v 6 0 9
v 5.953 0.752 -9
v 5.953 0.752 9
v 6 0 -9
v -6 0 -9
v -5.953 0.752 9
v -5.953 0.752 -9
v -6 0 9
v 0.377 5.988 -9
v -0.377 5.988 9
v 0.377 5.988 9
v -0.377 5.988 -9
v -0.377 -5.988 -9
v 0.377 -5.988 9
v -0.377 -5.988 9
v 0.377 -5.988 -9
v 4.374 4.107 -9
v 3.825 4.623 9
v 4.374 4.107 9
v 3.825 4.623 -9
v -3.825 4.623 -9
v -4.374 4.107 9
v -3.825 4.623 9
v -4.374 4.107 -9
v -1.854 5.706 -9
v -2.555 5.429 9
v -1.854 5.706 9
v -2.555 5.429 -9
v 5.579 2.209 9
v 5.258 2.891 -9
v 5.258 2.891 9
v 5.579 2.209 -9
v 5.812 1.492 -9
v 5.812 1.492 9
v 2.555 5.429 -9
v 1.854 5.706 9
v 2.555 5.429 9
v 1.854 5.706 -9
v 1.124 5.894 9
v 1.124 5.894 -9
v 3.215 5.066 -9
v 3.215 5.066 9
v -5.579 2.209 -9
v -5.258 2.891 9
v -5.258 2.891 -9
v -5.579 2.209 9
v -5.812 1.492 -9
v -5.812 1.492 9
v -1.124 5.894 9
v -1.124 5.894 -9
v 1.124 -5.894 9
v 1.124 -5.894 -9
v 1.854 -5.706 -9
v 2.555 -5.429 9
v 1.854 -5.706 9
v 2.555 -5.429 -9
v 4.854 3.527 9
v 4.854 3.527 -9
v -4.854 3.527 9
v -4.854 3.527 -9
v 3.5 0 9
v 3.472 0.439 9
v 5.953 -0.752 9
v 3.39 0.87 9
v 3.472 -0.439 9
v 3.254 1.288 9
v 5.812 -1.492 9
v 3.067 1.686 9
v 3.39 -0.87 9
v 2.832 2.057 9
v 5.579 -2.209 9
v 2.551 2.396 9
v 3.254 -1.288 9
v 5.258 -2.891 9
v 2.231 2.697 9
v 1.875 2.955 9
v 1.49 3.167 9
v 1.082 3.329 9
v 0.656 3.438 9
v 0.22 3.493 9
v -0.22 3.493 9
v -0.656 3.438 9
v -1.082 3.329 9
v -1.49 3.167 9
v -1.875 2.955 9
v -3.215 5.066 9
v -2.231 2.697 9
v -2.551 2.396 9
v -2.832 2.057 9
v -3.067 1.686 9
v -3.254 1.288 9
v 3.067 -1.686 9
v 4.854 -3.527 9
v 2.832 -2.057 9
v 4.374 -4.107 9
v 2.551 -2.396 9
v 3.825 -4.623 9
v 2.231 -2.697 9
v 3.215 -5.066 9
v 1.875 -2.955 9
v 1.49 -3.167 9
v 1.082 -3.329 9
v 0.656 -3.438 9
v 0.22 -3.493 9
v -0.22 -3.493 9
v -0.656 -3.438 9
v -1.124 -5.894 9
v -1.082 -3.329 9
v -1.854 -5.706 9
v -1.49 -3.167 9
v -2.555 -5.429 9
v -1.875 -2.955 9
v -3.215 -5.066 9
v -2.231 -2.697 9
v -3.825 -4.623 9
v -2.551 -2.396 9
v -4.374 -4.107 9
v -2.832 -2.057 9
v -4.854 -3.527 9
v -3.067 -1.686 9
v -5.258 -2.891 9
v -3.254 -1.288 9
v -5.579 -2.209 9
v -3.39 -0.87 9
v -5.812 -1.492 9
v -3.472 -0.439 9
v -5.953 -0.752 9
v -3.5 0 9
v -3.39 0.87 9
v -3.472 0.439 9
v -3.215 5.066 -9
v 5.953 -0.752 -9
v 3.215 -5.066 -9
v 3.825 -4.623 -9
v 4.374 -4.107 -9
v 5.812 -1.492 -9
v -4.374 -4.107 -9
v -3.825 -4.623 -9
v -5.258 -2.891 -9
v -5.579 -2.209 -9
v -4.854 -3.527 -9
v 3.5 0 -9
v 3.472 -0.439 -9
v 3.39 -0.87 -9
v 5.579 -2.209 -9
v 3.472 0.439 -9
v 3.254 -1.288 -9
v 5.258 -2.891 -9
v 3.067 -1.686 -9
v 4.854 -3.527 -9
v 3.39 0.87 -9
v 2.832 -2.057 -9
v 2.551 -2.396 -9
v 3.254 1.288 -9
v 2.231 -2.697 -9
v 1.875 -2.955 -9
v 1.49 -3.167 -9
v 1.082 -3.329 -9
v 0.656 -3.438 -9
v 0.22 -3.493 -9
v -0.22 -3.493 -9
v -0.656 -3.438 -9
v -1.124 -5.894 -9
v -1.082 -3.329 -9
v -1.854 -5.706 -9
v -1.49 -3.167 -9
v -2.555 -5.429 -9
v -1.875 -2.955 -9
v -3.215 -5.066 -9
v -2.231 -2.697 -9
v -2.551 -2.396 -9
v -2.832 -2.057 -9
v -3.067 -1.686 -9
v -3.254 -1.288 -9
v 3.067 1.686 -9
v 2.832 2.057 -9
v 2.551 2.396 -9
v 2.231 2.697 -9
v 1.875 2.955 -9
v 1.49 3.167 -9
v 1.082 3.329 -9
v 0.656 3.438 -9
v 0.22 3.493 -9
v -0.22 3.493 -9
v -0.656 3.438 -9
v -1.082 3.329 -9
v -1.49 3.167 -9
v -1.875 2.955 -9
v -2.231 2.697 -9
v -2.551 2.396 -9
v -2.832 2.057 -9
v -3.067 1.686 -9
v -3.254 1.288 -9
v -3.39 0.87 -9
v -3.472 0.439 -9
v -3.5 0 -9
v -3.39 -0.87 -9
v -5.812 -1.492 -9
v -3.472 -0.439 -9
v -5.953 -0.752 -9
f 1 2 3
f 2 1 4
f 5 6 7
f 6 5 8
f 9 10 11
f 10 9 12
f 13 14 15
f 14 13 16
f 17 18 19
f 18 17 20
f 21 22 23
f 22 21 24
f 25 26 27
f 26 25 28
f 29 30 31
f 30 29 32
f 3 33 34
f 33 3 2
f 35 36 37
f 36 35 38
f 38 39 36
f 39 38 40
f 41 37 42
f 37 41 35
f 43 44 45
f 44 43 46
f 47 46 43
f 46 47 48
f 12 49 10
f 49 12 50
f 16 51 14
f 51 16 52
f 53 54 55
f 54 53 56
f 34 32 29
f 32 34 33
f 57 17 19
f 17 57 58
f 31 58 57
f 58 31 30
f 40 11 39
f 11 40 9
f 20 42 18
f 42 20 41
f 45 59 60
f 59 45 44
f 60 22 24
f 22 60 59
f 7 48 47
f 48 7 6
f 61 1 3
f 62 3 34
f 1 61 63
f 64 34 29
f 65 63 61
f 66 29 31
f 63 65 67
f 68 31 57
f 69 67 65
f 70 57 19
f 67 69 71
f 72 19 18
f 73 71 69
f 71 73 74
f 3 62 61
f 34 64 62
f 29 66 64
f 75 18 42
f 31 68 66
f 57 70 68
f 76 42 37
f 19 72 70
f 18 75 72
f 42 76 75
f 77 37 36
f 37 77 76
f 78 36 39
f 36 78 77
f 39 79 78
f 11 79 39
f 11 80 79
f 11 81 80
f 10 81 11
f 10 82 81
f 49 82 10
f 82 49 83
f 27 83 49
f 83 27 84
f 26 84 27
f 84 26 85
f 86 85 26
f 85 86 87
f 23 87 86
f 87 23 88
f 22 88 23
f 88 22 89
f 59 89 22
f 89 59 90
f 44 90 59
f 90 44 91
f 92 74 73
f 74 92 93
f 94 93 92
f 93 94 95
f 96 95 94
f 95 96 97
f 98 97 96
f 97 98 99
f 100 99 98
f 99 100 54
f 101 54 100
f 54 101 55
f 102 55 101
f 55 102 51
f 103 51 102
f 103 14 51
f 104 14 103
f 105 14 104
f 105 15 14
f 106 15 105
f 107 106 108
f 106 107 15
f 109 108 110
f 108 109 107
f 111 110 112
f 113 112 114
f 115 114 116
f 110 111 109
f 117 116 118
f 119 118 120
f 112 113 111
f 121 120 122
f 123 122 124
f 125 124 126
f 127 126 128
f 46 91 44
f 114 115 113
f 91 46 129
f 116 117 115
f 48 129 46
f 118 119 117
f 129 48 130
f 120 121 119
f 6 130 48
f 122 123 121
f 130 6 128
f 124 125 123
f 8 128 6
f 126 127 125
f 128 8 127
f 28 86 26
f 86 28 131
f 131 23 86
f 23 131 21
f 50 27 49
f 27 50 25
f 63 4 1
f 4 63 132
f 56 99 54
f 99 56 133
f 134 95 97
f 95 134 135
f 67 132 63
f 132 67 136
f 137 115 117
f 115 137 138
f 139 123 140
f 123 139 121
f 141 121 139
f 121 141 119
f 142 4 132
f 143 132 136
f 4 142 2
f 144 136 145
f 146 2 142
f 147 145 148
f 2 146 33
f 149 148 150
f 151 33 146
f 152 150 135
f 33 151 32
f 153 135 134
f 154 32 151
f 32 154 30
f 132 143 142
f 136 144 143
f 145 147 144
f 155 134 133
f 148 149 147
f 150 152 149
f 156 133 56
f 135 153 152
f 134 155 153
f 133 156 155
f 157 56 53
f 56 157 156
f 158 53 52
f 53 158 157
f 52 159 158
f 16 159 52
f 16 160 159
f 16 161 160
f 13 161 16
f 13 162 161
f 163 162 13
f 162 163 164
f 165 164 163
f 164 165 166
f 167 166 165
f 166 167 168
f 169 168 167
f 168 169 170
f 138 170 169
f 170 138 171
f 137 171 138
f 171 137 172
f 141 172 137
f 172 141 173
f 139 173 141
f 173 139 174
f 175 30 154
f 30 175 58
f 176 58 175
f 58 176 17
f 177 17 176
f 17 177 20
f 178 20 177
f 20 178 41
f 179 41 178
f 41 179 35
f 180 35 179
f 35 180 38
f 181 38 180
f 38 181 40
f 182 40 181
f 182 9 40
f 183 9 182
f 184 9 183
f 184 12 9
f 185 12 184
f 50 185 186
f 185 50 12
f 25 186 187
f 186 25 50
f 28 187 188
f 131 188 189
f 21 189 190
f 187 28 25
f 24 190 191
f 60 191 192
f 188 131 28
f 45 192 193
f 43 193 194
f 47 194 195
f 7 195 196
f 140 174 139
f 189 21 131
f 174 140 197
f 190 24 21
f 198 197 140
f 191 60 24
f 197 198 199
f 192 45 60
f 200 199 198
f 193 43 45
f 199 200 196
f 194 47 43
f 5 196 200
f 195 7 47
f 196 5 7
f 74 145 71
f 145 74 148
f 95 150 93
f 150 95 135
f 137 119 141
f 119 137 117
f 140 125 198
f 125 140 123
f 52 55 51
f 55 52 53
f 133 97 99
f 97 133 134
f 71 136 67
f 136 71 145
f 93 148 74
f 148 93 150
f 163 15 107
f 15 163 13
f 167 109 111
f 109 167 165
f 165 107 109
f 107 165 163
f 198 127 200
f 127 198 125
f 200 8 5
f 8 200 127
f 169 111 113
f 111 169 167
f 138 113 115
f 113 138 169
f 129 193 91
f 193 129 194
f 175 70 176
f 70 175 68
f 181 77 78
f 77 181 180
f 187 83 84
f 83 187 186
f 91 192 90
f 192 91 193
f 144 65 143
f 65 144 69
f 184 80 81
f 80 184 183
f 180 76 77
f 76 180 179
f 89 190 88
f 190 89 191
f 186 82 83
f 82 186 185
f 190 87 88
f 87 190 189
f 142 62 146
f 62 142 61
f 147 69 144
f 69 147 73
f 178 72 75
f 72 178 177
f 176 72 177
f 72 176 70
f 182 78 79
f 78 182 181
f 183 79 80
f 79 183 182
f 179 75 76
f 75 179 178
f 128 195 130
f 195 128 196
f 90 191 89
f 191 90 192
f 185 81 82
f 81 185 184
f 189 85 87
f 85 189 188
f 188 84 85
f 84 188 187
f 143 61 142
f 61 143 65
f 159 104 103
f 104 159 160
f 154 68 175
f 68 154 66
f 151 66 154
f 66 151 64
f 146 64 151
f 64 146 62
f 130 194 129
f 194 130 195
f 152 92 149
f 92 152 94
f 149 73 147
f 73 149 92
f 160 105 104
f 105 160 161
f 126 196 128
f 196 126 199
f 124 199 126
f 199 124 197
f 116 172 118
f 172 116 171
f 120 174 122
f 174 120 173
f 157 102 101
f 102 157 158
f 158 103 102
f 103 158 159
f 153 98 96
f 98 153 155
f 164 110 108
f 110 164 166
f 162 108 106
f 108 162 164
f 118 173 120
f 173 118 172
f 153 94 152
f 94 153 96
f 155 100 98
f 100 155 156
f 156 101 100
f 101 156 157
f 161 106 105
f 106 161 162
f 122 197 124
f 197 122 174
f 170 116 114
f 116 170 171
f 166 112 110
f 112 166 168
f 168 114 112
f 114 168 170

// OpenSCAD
$fn = 50;


difference() {
	union() {
		translate(v = [0, 0, -9.0000000000]) {
			cylinder(h = 18, r = 6.0000000000);
		}
	}
	union() {
		translate(v = [0, 0, -100.0000000000]) {
			cylinder(h = 200, r = 3.5000000000);
		}
	}
}
